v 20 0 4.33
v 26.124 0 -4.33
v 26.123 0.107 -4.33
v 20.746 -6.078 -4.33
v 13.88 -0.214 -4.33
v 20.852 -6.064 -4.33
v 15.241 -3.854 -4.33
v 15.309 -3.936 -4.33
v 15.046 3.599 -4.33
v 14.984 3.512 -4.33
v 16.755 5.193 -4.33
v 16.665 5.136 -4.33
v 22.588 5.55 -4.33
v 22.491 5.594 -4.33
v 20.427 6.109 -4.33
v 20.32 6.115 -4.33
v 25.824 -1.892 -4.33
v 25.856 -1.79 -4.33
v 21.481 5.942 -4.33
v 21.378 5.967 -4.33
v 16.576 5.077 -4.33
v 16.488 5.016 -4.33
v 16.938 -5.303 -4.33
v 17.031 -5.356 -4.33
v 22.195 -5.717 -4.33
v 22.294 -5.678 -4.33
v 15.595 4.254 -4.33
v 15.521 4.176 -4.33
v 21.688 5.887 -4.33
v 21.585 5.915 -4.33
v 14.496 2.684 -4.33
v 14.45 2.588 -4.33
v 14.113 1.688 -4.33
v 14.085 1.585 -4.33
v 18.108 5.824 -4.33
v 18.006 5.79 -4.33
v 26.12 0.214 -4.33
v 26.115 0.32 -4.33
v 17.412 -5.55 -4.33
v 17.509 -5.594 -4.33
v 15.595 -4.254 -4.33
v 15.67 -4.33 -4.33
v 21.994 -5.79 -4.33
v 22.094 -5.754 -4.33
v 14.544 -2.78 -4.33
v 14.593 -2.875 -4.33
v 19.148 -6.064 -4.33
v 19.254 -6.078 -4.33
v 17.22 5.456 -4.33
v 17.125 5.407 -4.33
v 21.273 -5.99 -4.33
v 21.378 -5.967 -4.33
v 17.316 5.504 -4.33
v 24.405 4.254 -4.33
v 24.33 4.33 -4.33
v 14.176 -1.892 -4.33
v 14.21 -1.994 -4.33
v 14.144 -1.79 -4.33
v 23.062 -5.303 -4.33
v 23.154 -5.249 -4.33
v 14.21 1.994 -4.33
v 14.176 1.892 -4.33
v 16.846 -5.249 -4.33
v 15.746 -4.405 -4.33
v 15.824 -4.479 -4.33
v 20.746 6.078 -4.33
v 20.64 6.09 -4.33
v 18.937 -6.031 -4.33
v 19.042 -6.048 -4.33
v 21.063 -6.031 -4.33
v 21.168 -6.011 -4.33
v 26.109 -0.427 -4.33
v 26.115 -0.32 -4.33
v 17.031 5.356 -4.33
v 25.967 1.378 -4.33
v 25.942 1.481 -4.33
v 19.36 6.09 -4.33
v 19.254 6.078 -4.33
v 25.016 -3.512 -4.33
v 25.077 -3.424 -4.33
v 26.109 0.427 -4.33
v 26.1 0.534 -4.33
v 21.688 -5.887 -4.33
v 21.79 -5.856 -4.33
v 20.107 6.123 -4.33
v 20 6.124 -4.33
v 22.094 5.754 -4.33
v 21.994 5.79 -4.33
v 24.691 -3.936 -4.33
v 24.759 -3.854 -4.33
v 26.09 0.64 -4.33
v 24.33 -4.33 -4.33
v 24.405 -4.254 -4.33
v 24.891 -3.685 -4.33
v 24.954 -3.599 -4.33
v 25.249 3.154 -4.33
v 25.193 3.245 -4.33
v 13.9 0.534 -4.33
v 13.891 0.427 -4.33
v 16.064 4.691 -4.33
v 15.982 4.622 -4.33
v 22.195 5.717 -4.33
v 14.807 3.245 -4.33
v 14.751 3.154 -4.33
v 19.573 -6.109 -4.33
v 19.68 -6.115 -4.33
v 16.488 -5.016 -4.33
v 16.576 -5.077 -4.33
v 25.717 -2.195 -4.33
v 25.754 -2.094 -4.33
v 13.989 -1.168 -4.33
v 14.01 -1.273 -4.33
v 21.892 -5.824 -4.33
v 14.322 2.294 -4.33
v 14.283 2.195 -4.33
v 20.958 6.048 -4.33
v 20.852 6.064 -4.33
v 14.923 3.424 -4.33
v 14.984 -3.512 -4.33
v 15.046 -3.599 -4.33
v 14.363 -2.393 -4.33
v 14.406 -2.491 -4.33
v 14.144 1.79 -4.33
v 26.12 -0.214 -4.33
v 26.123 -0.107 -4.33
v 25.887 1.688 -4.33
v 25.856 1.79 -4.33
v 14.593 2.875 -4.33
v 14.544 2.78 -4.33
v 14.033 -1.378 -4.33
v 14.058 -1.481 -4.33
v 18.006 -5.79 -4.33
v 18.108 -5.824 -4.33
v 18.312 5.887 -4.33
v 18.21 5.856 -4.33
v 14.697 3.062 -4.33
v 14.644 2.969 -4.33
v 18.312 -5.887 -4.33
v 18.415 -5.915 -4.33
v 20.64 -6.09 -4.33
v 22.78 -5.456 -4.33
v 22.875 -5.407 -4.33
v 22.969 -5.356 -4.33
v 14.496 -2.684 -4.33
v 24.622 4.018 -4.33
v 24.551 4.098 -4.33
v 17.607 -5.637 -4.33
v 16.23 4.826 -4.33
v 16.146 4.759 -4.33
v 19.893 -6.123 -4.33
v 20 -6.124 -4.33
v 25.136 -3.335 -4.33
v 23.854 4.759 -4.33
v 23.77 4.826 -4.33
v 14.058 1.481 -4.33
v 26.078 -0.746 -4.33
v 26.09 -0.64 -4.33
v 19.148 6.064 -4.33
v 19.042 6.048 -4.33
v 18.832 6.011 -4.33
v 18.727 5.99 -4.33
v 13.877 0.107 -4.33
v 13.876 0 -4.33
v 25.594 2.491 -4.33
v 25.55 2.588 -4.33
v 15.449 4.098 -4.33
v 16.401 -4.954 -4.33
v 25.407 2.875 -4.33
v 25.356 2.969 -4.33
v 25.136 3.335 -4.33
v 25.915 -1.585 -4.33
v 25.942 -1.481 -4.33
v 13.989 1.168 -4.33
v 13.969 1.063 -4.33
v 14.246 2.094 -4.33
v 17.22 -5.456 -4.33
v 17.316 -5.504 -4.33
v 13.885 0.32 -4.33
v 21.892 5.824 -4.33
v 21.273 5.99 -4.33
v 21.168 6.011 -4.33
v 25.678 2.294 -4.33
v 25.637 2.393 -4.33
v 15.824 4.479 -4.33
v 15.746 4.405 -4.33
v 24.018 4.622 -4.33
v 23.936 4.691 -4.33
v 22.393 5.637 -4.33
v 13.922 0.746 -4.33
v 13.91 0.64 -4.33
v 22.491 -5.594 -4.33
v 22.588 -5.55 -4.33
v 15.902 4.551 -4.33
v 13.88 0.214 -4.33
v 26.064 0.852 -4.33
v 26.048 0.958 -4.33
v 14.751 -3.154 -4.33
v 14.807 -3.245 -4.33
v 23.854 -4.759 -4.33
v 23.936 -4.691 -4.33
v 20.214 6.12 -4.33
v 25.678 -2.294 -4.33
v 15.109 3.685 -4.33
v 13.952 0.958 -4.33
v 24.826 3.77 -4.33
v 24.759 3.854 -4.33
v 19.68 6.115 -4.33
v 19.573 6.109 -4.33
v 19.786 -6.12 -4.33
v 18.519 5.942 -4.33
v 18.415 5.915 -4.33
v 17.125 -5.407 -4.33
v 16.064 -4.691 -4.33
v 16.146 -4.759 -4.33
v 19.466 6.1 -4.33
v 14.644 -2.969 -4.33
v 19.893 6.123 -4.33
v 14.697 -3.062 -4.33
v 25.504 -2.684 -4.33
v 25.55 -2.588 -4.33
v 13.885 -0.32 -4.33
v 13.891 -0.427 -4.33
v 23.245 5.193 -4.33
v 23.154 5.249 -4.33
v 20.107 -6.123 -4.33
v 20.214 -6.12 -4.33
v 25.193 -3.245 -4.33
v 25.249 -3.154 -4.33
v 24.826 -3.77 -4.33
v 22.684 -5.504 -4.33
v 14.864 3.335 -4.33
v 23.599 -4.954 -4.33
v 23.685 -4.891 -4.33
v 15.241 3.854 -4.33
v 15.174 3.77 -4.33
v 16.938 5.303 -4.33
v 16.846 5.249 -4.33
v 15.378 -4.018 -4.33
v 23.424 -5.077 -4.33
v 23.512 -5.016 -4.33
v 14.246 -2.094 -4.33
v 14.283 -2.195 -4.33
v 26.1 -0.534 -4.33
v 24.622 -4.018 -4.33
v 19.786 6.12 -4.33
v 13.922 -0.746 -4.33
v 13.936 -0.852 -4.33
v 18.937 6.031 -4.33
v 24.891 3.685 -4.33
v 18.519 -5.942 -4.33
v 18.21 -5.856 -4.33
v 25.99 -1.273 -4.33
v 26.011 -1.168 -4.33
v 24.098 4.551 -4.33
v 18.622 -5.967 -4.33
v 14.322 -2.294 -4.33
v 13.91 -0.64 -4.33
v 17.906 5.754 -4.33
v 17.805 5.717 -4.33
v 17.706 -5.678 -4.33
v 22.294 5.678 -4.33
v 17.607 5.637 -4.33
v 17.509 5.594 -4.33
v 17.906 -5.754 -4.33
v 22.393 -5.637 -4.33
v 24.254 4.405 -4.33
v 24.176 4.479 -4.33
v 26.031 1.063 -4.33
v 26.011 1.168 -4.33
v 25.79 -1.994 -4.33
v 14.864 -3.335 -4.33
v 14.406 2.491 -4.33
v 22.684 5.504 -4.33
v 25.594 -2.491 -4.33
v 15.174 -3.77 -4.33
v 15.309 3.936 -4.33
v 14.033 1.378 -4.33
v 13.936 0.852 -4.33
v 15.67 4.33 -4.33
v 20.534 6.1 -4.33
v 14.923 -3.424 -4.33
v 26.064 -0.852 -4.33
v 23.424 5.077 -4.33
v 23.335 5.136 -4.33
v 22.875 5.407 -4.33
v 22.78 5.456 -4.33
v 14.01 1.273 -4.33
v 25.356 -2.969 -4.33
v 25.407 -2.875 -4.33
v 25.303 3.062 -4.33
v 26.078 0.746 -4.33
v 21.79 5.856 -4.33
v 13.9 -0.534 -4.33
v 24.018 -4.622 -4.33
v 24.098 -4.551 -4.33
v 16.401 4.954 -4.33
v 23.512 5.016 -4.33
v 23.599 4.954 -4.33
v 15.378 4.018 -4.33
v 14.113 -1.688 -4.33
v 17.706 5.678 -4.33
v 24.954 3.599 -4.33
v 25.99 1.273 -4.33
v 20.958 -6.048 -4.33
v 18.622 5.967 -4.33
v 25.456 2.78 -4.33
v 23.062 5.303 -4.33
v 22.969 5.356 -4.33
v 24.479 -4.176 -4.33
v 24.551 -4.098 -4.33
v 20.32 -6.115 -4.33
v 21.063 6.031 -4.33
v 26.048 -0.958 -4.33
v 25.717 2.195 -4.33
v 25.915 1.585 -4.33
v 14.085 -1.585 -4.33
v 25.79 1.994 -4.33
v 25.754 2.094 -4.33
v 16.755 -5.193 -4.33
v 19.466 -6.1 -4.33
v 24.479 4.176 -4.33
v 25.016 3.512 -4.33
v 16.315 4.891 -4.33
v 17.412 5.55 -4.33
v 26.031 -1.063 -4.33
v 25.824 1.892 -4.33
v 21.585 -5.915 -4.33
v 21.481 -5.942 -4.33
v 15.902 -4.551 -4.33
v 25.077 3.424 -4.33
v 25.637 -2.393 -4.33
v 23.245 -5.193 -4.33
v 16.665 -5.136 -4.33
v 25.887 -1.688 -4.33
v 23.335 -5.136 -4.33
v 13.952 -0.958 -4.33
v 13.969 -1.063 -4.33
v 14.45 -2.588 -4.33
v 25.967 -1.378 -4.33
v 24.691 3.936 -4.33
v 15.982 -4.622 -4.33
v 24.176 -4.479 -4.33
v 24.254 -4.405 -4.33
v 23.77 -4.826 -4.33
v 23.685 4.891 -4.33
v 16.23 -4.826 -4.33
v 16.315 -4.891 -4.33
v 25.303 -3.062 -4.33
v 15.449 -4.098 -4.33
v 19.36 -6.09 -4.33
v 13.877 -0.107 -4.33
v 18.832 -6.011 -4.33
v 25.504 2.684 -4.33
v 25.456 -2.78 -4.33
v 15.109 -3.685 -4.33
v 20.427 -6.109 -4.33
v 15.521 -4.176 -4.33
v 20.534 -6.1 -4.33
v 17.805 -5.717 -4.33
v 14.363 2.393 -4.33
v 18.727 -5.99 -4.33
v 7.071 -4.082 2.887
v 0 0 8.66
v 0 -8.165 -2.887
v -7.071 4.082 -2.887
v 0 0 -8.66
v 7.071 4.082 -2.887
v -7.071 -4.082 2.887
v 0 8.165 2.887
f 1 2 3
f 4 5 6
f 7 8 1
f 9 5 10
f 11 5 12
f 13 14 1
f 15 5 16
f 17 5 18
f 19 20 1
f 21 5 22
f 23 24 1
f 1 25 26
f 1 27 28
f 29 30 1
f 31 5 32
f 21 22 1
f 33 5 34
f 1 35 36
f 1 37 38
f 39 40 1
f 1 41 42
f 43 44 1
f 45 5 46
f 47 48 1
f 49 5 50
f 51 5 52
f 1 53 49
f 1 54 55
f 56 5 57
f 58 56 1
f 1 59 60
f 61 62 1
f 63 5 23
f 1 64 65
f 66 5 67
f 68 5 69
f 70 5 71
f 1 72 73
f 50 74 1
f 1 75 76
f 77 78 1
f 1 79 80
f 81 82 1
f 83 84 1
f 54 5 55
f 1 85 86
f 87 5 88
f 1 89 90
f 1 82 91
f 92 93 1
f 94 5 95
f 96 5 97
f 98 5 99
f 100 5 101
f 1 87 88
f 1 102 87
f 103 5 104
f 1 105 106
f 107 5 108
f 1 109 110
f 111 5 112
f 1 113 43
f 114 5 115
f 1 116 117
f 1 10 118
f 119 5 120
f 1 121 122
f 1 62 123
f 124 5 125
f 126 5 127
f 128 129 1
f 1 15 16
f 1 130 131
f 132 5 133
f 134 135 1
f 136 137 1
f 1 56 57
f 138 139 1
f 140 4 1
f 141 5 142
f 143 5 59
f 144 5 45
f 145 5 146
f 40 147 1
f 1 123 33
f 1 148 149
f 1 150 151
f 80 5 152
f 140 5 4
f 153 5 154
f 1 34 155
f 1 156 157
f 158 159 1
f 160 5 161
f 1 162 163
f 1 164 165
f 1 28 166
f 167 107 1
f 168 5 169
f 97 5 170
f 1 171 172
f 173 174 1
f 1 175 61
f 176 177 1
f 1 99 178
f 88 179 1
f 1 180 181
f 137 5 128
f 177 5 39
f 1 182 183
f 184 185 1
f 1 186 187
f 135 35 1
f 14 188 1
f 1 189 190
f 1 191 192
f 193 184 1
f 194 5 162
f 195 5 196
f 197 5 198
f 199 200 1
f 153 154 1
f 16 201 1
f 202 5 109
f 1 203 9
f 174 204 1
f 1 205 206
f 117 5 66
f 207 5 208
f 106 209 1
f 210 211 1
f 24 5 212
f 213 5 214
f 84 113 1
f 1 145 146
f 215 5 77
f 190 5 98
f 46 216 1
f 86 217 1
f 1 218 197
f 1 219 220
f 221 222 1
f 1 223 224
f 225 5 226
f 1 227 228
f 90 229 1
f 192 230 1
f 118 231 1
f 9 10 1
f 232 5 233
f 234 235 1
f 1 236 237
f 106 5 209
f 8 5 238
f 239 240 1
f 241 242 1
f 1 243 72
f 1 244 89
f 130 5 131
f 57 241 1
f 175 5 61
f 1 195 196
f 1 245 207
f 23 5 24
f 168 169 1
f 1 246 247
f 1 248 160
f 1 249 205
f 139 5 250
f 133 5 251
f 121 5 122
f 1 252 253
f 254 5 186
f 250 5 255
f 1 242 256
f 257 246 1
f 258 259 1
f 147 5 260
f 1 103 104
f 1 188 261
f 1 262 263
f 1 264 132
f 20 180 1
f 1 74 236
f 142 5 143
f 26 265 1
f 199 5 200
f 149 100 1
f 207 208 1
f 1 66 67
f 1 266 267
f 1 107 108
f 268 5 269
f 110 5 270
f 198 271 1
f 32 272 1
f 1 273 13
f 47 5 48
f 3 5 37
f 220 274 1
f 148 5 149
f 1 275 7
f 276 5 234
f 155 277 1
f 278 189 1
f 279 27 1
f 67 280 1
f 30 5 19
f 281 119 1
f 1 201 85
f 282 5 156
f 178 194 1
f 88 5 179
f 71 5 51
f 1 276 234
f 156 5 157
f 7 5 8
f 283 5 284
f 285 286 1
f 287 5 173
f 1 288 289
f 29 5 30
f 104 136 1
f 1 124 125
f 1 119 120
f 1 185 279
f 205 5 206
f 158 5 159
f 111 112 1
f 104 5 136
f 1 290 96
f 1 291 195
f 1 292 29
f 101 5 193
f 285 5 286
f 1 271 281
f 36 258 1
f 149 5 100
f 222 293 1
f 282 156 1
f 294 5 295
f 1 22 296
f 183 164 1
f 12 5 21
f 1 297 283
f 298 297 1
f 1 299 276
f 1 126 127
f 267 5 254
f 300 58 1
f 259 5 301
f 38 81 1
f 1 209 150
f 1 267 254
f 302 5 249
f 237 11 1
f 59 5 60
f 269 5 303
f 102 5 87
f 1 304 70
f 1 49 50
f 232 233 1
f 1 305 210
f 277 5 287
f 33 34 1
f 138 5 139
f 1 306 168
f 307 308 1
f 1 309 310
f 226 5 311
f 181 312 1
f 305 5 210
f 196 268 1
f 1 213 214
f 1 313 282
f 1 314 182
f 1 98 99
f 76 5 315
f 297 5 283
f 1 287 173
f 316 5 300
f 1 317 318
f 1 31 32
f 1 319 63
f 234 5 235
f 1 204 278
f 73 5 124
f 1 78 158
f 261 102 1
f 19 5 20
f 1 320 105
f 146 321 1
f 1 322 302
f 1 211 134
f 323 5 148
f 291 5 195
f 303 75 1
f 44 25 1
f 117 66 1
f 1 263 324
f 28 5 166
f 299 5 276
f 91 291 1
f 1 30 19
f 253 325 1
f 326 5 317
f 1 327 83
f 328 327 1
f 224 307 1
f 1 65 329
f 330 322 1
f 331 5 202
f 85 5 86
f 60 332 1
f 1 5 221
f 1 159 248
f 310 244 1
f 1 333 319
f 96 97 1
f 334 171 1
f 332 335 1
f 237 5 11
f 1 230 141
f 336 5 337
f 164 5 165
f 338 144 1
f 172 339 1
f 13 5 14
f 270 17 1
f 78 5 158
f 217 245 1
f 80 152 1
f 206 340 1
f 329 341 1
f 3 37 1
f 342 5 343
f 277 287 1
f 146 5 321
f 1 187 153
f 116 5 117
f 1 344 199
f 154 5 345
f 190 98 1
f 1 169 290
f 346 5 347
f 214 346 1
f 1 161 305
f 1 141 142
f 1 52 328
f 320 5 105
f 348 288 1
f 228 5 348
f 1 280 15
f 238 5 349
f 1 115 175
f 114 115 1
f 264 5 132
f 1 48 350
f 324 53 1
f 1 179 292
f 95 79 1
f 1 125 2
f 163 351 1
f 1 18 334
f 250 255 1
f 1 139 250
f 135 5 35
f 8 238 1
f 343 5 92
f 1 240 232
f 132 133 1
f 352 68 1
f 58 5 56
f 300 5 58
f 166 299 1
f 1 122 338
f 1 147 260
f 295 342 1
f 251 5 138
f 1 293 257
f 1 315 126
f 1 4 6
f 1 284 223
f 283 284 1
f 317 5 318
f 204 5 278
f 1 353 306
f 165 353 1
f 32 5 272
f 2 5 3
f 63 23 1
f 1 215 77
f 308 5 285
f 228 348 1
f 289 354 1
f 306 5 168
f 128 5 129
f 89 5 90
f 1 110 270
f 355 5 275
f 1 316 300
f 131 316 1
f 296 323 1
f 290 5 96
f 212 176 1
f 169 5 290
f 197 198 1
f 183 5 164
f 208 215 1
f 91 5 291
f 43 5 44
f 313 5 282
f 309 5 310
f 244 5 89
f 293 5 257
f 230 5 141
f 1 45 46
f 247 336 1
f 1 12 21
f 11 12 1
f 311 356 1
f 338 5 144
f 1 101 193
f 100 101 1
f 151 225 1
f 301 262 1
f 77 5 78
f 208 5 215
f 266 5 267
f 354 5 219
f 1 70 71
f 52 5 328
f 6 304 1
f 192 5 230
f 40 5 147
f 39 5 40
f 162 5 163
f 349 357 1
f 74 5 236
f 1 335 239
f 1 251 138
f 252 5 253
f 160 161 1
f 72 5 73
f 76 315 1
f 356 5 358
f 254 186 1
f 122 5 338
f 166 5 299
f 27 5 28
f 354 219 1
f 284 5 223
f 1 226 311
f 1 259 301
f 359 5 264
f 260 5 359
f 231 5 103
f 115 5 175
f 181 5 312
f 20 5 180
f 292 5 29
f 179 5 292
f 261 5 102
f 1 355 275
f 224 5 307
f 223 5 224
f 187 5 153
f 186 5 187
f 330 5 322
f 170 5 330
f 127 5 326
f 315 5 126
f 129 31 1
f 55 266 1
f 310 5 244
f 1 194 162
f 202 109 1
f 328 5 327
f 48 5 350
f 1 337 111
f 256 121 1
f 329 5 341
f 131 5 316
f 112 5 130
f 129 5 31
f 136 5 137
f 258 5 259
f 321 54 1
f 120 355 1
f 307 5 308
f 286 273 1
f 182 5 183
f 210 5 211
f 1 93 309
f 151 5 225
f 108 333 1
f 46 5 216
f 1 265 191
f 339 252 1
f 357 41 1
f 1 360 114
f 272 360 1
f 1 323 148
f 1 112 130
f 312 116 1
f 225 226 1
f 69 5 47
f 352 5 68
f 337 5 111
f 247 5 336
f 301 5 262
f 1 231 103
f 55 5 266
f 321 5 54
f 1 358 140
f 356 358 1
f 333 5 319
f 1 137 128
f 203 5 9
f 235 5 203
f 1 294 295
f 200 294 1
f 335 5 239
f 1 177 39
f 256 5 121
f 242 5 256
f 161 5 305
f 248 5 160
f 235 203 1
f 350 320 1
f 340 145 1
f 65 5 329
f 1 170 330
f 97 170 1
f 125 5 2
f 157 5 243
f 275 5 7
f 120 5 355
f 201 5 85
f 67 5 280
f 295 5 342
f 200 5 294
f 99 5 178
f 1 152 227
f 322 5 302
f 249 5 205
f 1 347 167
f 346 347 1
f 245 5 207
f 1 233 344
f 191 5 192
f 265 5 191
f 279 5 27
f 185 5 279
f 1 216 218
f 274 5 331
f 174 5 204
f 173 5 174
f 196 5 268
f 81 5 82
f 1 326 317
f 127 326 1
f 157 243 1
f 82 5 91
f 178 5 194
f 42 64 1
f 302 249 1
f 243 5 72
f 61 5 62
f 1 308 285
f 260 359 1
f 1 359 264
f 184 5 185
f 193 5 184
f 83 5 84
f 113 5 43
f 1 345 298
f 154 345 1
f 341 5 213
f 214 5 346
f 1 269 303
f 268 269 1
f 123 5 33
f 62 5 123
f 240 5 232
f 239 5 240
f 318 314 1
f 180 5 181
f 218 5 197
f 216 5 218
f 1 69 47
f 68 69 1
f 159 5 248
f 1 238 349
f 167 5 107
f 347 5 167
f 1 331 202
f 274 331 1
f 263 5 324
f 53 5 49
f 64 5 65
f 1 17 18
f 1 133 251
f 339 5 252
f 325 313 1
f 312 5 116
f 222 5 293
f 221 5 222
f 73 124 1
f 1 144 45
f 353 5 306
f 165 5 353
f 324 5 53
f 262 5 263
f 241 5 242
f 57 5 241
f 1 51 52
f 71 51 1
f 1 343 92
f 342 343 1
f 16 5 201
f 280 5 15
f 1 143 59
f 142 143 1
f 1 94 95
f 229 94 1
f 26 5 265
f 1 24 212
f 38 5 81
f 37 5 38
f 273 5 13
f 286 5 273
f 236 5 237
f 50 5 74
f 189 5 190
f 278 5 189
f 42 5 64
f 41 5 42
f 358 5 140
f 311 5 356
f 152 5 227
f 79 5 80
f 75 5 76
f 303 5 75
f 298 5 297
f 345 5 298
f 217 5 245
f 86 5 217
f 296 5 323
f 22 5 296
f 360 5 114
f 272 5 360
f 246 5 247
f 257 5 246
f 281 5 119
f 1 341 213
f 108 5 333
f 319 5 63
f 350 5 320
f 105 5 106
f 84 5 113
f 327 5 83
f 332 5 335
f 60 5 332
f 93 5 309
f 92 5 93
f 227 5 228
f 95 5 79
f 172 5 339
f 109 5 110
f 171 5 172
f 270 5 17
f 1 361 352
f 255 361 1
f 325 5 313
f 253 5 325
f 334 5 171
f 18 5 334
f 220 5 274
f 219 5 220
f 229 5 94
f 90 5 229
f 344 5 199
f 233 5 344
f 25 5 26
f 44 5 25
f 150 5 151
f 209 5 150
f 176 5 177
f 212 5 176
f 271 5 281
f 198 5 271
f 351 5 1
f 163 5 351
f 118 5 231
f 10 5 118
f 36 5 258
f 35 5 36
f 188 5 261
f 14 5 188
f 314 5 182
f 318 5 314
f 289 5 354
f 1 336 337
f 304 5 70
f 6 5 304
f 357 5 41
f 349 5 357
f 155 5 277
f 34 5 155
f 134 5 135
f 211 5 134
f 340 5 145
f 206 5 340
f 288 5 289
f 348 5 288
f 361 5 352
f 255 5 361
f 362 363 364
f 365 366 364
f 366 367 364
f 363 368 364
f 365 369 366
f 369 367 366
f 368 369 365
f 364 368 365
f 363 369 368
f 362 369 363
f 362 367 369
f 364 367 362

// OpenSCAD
module space_out_children(v=[20,0,0]){
	for(idx=[0:$children-1]){
		translate(v*idx) children(idx);
	}
}

	space_out_children(){
		rotate([acos(1/sqrt(3)),0,0]) rotate([0,0,45])cube(size=10,center=true);
		cylinder(h=10*sqrt(3)/2,r1=10*sqrt(3/2)/2,r2=0, center=true, $fn=360);
	}
